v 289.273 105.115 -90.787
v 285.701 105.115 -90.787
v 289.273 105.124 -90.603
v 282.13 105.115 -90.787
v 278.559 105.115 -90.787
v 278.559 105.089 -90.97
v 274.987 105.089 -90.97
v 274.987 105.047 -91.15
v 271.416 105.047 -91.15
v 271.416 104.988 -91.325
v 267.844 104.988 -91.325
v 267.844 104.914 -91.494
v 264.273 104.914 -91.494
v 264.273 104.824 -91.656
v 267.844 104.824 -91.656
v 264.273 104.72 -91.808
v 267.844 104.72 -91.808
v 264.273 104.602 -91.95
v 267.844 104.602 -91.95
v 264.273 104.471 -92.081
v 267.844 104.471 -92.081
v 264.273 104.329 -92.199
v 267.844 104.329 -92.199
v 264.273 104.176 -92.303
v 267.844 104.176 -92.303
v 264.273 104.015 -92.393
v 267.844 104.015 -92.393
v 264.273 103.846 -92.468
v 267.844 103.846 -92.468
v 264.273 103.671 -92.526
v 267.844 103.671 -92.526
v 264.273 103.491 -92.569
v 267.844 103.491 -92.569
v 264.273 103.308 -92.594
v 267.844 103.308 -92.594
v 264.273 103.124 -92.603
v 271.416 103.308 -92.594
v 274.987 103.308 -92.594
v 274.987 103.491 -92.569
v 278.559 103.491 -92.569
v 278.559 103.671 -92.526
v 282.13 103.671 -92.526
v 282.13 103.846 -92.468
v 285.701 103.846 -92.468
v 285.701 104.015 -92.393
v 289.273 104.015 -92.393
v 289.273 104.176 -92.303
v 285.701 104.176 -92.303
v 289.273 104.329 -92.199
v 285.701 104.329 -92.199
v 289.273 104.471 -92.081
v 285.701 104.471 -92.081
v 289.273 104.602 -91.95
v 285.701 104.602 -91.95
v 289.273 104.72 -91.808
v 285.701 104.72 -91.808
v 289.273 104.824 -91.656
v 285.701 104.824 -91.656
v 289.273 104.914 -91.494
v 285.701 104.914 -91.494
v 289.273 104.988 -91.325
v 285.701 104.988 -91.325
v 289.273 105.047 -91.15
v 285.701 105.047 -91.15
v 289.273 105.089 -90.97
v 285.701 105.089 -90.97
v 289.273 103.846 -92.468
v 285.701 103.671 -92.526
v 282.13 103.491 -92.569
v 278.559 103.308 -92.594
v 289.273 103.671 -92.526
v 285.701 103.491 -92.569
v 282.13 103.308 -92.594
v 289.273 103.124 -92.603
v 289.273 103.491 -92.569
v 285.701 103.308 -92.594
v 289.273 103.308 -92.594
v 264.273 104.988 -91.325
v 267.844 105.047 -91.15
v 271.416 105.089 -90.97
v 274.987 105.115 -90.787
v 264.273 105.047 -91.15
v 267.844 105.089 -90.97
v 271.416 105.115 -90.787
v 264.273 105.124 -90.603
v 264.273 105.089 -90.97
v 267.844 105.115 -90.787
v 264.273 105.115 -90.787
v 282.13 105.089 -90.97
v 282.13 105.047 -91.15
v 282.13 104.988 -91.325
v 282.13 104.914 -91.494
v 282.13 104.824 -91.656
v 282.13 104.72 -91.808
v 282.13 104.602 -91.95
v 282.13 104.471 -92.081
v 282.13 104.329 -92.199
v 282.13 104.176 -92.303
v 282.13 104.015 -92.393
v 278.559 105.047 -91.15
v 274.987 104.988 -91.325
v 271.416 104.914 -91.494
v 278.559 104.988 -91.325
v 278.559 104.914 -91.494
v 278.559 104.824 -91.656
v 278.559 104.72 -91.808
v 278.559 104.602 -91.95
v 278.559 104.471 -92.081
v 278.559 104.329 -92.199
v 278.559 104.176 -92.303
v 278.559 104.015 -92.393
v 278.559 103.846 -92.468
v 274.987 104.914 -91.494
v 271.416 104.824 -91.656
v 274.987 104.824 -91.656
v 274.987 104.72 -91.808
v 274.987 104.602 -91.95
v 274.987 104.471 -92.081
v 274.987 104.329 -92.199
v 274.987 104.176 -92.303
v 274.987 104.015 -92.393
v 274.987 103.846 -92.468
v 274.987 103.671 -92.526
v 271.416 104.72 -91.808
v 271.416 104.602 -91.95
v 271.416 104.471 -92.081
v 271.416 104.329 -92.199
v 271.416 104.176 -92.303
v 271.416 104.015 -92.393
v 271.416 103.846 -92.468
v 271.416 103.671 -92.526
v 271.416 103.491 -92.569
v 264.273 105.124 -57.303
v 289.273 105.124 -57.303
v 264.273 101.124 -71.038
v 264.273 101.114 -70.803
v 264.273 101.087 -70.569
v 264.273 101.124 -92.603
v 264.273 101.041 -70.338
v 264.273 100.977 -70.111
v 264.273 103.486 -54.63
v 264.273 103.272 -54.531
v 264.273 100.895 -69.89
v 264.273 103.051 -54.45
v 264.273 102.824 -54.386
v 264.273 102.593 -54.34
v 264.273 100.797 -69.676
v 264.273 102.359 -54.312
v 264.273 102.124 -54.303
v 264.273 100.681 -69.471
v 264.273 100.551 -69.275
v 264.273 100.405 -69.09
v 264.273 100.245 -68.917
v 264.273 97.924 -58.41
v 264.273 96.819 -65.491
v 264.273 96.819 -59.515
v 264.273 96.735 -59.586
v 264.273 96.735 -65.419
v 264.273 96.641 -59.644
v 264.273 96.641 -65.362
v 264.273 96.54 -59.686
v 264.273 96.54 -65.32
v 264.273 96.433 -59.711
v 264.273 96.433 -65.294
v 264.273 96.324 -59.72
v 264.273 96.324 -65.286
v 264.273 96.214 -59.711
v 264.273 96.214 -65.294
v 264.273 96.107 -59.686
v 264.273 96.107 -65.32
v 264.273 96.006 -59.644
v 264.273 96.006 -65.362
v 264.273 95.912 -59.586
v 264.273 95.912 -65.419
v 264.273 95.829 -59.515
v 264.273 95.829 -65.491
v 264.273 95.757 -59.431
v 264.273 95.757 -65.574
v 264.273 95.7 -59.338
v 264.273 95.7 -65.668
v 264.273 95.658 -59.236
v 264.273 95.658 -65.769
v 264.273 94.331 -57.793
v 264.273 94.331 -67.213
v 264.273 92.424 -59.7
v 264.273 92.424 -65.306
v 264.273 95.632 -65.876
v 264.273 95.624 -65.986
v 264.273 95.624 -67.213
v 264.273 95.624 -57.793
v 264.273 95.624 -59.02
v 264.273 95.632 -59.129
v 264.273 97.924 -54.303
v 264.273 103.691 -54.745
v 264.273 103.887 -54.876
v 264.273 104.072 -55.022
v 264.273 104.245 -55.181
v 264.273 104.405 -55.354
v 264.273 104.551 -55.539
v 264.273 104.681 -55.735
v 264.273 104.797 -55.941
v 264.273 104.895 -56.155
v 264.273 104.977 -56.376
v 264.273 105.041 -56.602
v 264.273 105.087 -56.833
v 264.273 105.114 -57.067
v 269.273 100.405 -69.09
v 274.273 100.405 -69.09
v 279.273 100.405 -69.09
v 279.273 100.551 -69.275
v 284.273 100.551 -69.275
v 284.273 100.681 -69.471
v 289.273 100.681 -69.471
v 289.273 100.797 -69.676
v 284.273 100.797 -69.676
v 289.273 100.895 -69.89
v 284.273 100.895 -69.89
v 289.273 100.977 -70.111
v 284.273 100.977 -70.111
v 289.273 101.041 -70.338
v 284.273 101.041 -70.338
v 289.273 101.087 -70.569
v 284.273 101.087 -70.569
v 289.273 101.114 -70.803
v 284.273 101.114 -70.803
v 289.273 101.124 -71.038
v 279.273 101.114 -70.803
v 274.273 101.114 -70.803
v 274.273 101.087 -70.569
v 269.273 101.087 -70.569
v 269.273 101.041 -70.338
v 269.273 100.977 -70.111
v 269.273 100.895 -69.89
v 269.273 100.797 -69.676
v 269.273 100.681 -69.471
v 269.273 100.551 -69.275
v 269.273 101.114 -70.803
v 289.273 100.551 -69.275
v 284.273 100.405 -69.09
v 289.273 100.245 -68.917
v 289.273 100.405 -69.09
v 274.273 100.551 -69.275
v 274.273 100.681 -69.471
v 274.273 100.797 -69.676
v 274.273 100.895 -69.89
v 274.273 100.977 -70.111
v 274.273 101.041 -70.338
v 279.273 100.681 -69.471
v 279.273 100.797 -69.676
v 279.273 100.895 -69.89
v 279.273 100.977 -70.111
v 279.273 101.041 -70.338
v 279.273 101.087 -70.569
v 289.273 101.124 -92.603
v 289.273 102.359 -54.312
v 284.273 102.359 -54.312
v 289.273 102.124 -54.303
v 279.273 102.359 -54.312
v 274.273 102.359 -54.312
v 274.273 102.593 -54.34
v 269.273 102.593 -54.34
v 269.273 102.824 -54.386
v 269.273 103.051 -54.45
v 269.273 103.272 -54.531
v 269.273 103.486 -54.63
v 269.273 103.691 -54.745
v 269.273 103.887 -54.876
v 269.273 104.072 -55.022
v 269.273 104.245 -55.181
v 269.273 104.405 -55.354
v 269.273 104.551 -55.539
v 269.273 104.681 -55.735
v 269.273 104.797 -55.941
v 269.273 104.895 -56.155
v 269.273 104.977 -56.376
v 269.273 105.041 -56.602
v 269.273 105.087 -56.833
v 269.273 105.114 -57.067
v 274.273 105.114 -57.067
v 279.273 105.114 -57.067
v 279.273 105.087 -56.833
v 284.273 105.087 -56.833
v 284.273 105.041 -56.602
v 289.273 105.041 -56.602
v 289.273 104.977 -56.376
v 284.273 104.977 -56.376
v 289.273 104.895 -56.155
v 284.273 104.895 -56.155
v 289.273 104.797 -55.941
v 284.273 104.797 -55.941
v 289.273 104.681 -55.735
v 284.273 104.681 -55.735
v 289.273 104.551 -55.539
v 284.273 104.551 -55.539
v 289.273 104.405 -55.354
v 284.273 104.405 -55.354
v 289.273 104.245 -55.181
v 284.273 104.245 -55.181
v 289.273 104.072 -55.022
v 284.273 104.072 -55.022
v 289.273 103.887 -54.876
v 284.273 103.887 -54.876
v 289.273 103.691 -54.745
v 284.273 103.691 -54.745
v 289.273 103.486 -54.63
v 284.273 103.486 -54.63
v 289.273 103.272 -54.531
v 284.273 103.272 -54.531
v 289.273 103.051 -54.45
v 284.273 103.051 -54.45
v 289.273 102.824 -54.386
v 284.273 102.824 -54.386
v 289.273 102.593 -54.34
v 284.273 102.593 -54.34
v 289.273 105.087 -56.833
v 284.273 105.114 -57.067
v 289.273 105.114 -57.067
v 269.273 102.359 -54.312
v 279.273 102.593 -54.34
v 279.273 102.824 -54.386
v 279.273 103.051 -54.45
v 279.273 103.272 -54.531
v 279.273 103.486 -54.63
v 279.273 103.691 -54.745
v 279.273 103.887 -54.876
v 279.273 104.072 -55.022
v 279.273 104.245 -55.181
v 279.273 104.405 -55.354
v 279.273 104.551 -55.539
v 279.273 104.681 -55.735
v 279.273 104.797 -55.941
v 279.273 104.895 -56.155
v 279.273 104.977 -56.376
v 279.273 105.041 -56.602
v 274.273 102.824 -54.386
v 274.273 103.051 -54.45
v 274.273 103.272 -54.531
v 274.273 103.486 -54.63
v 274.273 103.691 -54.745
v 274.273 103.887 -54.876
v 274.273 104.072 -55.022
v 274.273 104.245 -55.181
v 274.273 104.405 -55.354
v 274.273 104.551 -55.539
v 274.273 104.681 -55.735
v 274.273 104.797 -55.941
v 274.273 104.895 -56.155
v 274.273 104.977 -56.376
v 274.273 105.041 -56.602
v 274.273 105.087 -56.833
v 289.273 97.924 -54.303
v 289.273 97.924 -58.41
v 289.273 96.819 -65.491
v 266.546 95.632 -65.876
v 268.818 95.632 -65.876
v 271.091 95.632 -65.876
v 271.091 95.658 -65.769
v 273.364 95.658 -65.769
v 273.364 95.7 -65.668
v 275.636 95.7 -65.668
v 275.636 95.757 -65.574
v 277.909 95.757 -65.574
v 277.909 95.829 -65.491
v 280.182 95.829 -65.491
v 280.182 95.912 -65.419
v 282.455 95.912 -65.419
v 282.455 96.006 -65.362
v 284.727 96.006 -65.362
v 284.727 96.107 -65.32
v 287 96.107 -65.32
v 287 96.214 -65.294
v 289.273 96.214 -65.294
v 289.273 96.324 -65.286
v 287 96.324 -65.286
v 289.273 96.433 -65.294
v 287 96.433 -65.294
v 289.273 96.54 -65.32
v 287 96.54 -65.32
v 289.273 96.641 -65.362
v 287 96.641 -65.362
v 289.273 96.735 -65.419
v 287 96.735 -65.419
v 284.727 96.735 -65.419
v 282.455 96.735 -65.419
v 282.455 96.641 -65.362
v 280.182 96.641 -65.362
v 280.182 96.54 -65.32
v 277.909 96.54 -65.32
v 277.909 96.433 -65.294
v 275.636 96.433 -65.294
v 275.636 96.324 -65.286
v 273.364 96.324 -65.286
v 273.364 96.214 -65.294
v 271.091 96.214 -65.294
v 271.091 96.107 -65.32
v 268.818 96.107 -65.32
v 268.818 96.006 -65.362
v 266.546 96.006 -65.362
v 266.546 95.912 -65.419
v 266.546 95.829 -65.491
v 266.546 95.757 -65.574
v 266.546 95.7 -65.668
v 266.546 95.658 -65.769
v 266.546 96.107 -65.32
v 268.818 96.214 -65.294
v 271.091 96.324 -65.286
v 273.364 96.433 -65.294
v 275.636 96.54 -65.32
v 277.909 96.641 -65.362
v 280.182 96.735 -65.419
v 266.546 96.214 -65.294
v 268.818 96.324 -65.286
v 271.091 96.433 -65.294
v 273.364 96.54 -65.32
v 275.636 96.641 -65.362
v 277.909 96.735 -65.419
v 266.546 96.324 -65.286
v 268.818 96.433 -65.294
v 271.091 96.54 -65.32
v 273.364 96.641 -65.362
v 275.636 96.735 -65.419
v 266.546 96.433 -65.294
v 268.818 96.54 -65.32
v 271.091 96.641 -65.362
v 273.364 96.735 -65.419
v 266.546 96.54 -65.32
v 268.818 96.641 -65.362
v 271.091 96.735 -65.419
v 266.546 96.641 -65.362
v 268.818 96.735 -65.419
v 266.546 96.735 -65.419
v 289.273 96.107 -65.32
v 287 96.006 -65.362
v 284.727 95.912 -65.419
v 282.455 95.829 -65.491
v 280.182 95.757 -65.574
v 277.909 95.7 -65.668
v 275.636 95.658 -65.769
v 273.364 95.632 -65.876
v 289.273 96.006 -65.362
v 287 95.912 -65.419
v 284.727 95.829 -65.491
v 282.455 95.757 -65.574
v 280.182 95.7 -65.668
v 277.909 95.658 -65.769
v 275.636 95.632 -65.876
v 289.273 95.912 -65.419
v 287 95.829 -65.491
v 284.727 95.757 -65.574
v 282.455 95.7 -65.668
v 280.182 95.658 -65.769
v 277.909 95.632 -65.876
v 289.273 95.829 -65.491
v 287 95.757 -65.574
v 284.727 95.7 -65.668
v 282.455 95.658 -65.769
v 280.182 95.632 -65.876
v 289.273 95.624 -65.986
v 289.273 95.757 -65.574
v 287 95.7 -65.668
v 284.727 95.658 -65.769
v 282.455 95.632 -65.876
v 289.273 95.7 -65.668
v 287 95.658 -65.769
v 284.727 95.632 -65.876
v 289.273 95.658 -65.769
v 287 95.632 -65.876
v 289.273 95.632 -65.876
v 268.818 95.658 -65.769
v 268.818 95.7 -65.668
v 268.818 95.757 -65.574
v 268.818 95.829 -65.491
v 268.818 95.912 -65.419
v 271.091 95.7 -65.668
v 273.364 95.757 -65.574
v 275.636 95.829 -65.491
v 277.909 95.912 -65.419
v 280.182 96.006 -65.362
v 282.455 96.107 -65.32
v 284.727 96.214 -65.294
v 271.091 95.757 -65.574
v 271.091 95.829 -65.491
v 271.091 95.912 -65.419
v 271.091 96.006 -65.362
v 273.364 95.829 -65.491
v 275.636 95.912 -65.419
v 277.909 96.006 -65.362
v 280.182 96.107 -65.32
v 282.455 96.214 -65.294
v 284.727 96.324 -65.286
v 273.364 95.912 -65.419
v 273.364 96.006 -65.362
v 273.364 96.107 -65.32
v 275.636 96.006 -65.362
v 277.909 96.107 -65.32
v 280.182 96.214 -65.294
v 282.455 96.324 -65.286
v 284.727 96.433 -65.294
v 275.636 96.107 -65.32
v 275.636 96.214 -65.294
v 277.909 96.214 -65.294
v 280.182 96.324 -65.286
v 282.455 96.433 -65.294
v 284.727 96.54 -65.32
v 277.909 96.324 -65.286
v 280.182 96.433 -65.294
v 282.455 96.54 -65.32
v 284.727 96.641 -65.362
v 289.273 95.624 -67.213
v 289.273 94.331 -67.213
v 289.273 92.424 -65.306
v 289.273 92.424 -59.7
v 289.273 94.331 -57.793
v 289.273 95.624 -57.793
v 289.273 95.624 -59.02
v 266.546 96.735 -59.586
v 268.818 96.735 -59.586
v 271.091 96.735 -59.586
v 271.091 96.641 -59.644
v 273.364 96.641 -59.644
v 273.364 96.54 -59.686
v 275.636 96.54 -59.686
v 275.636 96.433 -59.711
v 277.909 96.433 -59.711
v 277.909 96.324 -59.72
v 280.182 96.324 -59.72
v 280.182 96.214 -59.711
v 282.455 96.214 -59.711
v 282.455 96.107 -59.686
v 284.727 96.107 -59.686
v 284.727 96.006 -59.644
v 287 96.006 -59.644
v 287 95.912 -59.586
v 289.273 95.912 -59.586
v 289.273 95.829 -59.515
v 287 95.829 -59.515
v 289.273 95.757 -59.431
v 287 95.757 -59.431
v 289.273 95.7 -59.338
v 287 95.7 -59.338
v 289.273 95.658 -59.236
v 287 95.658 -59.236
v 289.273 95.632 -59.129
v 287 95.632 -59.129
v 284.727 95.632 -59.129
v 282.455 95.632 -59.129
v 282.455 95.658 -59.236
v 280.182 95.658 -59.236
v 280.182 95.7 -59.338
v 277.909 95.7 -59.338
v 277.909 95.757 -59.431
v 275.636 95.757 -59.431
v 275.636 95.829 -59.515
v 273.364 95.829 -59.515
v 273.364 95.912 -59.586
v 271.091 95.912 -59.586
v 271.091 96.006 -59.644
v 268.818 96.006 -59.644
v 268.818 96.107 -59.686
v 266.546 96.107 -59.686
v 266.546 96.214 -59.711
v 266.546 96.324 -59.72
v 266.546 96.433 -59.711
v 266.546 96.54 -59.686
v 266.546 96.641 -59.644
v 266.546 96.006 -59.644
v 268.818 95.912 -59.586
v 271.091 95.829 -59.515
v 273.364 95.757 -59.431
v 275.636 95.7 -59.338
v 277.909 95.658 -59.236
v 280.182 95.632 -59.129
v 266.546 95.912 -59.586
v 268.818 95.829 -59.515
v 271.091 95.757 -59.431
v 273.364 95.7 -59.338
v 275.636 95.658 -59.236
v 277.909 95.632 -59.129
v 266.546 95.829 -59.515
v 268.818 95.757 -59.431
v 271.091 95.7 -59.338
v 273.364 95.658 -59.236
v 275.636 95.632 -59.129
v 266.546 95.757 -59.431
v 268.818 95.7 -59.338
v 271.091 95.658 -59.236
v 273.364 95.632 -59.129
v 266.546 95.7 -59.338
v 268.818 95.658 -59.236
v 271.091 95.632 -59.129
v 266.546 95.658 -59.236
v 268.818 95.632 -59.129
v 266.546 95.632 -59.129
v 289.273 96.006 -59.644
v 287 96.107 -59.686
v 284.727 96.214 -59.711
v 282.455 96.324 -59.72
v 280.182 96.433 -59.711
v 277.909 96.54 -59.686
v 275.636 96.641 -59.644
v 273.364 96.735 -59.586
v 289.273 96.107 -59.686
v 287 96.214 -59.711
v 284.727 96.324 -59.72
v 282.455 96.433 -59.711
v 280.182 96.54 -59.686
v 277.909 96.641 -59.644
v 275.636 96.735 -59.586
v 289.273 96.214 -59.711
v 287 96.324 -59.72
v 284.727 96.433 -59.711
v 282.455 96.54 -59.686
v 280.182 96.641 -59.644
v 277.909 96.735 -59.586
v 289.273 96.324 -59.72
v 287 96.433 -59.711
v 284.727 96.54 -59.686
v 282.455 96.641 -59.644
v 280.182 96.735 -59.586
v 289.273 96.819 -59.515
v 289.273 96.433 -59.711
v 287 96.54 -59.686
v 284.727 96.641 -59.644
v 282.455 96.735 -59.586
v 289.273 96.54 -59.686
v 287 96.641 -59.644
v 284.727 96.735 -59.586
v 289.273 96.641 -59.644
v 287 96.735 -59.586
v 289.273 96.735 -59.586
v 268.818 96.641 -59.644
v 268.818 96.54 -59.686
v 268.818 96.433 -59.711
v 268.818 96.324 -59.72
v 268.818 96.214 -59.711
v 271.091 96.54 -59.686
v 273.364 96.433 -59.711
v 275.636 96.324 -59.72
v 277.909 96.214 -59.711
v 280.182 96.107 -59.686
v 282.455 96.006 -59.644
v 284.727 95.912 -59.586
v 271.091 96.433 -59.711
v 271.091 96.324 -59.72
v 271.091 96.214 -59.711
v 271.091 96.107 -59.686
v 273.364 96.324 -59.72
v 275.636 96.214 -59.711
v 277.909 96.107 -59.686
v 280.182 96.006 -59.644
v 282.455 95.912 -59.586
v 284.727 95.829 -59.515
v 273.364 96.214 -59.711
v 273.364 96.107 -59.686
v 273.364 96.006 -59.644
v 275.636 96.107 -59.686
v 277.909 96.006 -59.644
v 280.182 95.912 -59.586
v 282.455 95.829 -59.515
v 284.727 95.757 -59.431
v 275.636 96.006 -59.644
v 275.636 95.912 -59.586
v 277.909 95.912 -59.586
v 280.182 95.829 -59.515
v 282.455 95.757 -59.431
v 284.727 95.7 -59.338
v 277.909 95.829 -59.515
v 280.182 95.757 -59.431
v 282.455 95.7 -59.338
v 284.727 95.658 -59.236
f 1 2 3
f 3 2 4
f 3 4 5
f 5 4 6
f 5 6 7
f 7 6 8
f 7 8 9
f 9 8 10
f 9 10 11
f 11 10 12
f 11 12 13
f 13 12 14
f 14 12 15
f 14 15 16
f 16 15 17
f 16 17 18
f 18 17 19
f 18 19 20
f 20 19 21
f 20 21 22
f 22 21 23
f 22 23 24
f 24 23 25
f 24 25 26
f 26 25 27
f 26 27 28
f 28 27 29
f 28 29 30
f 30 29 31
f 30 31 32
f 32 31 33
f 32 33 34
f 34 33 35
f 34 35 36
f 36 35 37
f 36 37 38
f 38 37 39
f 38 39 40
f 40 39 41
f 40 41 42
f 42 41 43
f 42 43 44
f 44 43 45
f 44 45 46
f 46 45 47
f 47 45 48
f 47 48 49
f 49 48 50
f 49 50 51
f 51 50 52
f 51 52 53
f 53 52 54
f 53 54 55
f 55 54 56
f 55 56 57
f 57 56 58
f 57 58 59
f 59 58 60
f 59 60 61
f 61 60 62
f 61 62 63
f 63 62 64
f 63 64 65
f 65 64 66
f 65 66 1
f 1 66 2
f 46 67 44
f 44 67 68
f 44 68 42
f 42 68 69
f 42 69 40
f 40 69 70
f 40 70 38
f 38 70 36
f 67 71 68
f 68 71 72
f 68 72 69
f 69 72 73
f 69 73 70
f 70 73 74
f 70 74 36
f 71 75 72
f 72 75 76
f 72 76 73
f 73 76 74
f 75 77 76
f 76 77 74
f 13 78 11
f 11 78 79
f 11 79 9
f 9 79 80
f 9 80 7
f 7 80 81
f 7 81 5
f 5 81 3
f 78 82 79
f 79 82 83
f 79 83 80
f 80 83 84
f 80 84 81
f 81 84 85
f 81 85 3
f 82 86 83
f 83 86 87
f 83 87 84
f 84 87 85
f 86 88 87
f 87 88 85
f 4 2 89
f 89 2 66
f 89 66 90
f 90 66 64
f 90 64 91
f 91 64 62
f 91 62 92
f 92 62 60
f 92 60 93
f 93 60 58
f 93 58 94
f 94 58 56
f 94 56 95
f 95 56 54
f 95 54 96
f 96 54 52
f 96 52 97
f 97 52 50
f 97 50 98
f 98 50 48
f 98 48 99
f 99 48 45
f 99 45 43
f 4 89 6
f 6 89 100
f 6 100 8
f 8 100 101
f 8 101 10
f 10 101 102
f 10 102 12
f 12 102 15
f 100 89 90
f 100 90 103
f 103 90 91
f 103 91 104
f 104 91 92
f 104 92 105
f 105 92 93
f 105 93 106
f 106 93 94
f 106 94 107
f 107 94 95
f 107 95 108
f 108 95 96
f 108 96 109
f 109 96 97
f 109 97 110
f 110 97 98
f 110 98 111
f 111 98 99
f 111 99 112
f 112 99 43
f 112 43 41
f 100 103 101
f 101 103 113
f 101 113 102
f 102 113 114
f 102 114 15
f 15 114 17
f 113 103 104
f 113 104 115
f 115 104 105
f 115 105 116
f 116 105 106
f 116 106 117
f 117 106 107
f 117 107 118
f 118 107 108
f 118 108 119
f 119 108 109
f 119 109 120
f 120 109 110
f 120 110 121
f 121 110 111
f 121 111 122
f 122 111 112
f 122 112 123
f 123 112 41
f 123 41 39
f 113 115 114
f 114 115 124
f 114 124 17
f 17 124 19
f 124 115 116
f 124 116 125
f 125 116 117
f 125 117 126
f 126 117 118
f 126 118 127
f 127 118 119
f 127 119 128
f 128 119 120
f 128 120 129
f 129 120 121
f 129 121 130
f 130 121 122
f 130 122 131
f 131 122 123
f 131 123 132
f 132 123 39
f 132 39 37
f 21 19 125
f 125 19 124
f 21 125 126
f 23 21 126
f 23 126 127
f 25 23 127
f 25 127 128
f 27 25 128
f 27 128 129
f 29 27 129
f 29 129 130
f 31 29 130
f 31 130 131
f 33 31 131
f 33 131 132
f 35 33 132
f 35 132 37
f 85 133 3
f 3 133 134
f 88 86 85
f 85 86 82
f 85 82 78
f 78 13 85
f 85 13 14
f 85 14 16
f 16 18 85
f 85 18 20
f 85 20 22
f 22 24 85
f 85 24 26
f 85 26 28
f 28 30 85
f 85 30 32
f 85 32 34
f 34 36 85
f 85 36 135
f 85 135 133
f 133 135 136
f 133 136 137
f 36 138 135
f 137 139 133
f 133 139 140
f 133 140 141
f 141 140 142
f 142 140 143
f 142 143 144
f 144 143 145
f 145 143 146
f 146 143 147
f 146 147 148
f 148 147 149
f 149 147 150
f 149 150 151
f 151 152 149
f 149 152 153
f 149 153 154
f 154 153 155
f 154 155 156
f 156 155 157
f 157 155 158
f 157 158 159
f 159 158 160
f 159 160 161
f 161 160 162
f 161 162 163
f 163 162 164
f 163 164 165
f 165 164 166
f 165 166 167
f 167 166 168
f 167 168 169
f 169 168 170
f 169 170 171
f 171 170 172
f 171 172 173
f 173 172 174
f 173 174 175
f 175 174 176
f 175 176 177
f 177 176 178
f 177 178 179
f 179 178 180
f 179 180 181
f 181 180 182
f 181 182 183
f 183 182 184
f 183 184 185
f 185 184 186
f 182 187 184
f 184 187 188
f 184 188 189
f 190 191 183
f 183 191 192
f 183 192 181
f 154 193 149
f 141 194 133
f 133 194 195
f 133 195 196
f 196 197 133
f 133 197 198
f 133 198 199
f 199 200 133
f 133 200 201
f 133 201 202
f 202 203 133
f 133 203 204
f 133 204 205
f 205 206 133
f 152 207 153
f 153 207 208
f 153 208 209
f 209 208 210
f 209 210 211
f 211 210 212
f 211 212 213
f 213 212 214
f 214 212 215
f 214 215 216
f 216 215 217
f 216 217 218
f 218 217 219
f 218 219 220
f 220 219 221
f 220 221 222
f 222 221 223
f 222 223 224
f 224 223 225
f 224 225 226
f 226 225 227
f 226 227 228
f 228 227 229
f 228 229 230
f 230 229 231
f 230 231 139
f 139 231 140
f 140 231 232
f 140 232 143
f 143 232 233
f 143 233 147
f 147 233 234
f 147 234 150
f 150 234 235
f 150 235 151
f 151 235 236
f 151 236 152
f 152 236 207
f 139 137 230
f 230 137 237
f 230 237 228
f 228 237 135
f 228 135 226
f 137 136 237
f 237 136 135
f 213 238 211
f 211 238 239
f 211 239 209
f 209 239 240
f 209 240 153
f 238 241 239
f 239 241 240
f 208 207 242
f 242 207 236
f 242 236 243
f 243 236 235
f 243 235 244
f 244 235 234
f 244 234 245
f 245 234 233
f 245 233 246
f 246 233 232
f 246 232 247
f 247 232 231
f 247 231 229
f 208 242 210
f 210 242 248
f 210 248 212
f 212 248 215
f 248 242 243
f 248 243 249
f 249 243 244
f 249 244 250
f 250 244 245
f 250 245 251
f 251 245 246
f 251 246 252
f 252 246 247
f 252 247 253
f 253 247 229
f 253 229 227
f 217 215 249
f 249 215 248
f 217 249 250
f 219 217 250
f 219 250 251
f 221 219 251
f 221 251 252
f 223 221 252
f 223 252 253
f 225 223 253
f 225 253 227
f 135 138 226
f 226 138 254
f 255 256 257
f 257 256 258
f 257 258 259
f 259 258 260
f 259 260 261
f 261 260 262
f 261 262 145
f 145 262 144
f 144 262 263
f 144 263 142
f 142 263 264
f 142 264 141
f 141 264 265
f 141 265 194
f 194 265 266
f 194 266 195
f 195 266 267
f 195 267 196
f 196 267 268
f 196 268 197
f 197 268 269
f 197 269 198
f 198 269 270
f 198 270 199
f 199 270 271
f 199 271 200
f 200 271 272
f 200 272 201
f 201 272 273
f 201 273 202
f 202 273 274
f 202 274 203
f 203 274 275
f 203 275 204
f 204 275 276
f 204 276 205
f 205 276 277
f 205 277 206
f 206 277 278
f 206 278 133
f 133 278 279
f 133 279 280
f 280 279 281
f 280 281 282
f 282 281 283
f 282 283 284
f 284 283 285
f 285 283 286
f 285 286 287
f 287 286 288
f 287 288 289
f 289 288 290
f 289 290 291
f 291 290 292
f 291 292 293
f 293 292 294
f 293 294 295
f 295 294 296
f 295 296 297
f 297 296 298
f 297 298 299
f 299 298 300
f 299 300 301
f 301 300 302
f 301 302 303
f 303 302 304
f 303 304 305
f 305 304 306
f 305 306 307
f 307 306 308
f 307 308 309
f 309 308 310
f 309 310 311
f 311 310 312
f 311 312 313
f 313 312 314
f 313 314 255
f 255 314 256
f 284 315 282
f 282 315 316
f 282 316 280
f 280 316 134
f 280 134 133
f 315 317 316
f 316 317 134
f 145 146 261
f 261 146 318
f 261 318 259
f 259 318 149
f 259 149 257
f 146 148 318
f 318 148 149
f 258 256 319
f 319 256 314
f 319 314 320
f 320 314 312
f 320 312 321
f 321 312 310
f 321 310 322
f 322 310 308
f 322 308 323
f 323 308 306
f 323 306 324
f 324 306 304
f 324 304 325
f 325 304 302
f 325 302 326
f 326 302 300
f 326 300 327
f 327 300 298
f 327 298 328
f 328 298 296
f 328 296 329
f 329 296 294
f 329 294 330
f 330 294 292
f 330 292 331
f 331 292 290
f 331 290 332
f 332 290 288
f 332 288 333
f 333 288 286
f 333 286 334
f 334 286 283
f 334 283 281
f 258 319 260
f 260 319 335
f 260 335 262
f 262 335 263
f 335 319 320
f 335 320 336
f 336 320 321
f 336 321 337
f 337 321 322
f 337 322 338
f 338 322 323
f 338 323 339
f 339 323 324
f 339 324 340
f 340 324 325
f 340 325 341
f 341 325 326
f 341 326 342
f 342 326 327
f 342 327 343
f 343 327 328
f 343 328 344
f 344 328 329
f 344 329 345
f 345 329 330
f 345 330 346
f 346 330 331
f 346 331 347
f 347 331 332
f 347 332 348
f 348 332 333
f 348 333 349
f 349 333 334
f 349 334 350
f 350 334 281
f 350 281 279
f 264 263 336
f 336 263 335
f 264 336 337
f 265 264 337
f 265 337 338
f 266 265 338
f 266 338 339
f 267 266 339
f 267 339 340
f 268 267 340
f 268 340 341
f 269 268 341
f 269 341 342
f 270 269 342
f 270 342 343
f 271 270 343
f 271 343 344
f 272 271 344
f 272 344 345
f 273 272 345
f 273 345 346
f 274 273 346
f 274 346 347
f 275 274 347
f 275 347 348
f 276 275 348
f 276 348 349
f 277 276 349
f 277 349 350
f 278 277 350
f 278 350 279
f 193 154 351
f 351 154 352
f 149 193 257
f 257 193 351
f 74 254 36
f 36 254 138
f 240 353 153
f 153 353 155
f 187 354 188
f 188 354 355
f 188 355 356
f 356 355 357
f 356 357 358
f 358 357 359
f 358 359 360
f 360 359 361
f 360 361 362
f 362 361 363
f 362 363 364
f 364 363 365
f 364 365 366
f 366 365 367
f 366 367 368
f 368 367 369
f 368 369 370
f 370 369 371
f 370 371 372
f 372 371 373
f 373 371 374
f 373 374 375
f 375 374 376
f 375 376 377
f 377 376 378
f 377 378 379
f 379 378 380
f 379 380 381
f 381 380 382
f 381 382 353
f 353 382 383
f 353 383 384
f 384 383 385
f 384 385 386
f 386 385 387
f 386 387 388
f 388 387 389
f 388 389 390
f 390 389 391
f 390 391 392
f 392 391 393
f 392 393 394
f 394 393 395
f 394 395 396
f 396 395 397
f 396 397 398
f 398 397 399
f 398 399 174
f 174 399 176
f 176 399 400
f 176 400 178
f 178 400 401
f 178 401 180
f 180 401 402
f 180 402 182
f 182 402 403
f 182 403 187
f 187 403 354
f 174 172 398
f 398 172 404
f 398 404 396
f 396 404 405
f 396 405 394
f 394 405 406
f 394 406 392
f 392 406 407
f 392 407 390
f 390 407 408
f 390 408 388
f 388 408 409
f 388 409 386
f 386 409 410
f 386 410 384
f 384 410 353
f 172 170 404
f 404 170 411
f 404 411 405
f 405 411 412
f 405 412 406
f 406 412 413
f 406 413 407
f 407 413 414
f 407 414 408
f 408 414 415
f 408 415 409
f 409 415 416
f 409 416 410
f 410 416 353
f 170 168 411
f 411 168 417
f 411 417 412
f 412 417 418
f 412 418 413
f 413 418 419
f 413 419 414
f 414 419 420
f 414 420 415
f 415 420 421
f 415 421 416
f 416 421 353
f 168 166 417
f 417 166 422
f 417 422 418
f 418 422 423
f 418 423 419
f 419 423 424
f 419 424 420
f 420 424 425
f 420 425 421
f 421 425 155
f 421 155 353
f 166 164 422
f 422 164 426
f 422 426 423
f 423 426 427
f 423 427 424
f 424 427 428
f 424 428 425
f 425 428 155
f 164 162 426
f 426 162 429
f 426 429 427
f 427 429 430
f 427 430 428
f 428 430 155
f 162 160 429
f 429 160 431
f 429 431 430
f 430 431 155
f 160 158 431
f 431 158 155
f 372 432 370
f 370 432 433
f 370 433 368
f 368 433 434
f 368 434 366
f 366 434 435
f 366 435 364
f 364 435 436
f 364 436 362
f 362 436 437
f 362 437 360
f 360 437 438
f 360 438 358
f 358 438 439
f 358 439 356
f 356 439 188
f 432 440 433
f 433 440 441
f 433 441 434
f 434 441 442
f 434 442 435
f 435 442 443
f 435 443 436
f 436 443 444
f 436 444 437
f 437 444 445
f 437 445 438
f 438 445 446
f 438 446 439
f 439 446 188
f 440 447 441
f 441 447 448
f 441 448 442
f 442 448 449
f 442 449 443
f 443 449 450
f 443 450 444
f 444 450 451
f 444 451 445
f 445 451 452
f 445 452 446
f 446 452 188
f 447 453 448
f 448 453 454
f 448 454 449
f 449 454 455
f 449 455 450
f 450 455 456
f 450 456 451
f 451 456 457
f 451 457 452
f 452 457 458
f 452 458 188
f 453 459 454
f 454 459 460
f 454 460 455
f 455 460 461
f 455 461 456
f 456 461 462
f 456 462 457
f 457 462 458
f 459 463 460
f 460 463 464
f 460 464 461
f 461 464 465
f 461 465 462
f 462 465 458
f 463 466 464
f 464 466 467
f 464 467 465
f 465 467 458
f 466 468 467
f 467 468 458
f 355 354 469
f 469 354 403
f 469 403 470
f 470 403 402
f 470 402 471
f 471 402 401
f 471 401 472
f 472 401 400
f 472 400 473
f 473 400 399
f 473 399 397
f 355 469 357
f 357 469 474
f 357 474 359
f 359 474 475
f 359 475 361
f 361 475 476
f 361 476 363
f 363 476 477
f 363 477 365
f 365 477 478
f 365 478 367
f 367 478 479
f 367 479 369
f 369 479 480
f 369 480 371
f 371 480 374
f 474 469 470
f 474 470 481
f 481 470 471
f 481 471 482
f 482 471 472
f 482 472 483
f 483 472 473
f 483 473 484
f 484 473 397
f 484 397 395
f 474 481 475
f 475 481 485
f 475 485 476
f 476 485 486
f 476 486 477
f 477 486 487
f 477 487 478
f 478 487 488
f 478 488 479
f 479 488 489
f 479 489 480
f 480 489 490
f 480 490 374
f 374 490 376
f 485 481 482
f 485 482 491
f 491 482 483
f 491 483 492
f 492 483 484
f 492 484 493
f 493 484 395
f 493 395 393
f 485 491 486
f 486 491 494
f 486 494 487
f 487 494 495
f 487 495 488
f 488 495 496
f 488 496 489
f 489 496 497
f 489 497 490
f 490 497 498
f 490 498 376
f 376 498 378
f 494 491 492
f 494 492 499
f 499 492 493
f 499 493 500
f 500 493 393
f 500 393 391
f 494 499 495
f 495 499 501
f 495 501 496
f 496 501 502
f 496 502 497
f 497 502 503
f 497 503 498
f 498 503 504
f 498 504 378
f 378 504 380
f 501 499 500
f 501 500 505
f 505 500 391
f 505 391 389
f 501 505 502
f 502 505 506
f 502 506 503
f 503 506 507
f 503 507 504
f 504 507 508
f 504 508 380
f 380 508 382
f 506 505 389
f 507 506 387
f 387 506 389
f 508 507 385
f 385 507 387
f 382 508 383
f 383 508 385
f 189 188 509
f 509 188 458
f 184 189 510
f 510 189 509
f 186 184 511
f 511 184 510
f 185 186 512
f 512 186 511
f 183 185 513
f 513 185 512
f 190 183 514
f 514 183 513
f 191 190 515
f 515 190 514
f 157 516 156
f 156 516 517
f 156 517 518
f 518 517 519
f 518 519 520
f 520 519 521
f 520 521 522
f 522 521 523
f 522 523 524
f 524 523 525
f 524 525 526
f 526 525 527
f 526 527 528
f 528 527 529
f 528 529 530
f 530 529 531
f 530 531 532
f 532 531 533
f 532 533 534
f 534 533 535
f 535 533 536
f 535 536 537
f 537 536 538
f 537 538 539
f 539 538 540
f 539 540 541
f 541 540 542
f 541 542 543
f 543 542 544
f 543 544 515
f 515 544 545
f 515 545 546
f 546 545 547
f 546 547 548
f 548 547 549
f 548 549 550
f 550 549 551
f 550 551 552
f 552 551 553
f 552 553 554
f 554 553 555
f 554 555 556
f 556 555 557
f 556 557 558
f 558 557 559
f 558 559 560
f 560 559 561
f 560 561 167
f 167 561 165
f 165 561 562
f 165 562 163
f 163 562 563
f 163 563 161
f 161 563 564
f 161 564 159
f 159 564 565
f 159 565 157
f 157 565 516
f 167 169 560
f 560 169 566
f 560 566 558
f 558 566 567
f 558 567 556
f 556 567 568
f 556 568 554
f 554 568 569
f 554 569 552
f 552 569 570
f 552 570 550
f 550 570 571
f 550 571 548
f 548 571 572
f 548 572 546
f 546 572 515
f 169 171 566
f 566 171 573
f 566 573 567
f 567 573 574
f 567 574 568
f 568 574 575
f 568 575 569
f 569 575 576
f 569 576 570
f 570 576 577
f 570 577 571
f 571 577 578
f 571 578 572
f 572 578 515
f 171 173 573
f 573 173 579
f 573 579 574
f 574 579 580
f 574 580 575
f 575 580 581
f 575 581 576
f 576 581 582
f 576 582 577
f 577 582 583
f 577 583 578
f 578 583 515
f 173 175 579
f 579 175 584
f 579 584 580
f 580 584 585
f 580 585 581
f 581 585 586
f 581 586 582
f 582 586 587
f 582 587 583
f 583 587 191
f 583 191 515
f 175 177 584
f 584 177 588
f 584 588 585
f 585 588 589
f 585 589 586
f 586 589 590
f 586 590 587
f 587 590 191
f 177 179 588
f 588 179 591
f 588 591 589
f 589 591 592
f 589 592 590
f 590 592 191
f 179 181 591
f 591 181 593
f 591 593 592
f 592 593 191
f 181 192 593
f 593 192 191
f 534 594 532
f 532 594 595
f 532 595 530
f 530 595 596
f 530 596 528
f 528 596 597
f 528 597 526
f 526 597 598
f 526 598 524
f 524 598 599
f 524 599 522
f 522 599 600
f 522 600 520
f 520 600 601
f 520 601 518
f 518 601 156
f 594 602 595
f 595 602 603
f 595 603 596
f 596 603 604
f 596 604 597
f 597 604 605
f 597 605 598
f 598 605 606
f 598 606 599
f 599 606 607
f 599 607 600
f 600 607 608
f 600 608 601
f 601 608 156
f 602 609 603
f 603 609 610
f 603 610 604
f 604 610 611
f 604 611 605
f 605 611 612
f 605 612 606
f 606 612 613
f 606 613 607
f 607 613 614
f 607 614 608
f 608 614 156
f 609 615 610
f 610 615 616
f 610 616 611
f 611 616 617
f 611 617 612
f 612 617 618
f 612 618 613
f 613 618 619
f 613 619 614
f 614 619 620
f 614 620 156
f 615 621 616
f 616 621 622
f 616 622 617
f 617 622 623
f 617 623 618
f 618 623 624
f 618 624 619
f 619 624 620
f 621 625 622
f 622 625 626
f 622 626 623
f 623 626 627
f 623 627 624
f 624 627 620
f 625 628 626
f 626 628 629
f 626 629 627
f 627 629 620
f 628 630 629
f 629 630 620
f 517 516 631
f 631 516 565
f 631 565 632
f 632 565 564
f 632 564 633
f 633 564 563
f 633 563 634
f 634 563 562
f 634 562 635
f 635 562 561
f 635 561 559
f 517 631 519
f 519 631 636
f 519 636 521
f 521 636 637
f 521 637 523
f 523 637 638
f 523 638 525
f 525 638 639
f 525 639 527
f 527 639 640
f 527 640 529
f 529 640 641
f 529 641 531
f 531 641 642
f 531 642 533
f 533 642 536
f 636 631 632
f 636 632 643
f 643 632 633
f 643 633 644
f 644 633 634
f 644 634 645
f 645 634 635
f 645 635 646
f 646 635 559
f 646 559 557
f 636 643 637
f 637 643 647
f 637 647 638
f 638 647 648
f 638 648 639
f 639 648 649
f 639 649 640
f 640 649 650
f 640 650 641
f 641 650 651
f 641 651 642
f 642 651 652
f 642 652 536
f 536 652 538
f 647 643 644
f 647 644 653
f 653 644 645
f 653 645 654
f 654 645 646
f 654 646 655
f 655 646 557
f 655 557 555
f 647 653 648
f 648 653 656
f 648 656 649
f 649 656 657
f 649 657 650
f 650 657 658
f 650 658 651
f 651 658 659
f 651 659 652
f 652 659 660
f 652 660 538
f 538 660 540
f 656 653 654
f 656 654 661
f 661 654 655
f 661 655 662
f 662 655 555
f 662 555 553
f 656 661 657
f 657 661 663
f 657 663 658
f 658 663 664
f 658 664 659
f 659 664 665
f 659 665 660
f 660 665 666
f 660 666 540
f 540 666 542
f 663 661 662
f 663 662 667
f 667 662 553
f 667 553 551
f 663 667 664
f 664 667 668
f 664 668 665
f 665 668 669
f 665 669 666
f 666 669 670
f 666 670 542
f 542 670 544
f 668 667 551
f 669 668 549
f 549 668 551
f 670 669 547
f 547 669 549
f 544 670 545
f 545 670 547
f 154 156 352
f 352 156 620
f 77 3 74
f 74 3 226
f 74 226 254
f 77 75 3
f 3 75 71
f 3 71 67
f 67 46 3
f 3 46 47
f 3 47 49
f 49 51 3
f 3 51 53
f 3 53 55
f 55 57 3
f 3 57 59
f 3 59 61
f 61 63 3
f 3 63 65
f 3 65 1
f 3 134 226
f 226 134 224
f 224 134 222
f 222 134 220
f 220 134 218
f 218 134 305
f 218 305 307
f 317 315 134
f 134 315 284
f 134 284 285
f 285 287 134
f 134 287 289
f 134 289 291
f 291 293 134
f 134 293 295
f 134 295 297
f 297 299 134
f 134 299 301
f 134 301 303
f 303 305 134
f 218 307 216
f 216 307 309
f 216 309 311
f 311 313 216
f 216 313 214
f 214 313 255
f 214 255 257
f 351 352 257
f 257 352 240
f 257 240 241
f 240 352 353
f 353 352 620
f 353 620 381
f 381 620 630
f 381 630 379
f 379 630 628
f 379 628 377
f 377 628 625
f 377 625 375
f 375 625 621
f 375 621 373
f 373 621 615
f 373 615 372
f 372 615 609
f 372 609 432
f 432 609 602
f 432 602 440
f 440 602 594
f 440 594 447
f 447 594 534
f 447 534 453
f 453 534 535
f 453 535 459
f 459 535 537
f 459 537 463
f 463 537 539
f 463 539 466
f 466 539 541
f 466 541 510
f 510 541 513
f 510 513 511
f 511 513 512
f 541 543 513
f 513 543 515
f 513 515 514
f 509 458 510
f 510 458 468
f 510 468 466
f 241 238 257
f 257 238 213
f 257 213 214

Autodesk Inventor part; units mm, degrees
ref_plane "YZ Plane" through (0, 0, 0) normal (1, 0, 0) x (0, 1, 0)
ref_plane "XZ Plane" through (0, 0, 0) normal (0, 1, 0) x (-1, 0, 0)
ref_plane "Work Plane3" through (264.2728, 97.9235, -72.5028) normal (1, 0, 0) x (0, 1, 0)
sketch "Sketch1" plane through (264.2728, 97.9235, -72.5028) normal (1, 0, 0) x (0, 1, 0)
  line L0 (-1.8, 13.4828) -> (-1.8, 15.2101) projected
  line L1 (-1.8, 15.2101) -> (-3.8, 15.2101) projected
  line L2 (-3.8, 15.2101) -> (-6, 13.0101) projected
  line L3 (-6, 13.0101) -> (-6, 10.5) projected
  line L4 (-6, 9.5) -> (-6, 6.9899) projected
  line L5 (-6, 6.9899) -> (-3.8, 4.7899) projected
  line L6 (-3.8, 4.7899) -> (-1.8, 4.7899) projected
  line L7 (-1.8, 4.7899) -> (-1.8, 6.5172) projected
  line L8 (-6, 9.5) -> (-6, 10.5)
  line L9 (-0.0586, 14.7414) -> (-1.4586, 13.3414) projected
  arc A0 (-1.8, 13.4828) -> (-1.4586, 13.3414) centre (-1.6, 13.4828) ccw projected
  arc A1 (-1.4586, 6.6586) -> (-1.8, 6.5172) centre (-1.6, 6.5172) ccw projected
  line L10 (-1.4586, 6.6586) -> (-0.0586, 5.2586) projected
  line L11 (3.2, 2.7071) -> (-1.105, 7.0121)
  arc A2 (-1.105, 7.0121) -> (-2.3, 6.5172) centre (-1.6, 6.5172) ccw
  line L12 (-2.3, 6.5172) -> (-2.3, 5.2899)
  line L13 (-2.3, 5.2899) -> (-3.5929, 5.2899)
  line L14 (-3.5929, 5.2899) -> (-5.5, 7.1971)
  line L15 (-5.5, 7.1971) -> (-5.5, 9.5)
  line L16 (-5.5, 9.5) -> (-5.5, 10.5)
  line L17 (-5.5, 10.5) -> (-5.5, 12.8029)
  line L18 (-5.5, 12.8029) -> (-3.5929, 14.7101)
  line L19 (-3.5929, 14.7101) -> (-2.3, 14.7101)
  line L20 (-2.3, 14.7101) -> (-2.3, 13.4828)
  arc A3 (-2.3, 13.4828) -> (-1.105, 12.9879) centre (-1.6, 13.4828) ccw
  arc A4 (-0.2, 0) -> (0, 0.2) centre (-0.2, 0.2) ccw projected
  line L21 (0, 0.2) -> (0, 5.1172) projected
  arc A5 (0, 5.1172) -> (-0.0586, 5.2586) centre (-0.2, 5.1172) ccw projected
  line L22 (-1.4586, 6.6586) -> (-0.0586, 5.2586) projected
  arc A6 (-1.4586, 6.6586) -> (-1.8, 6.5172) centre (-1.6, 6.5172) ccw projected
  line L23 (-1.8, 4.7899) -> (-1.8, 6.5172) projected
  line L24 (-3.8, 4.7899) -> (-1.8, 4.7899) projected
  line L25 (-6, 6.9899) -> (-3.8, 4.7899) projected
  line L26 (-6, 9.5) -> (-6, 6.9899) projected
  line L27 (-6.5, 10) -> (-6, 9.5) projected
  line L28 (-6, 10.5) -> (-6.5, 10) projected
  line L29 (-6, 13.0101) -> (-6, 10.5) projected
  line L30 (-3.8, 15.2101) -> (-6, 13.0101) projected
  line L31 (-1.8, 15.2101) -> (-3.8, 15.2101) projected
  line L32 (-1.8, 13.4828) -> (-1.8, 15.2101) projected
  arc A7 (-1.8, 13.4828) -> (-1.4586, 13.3414) centre (-1.6, 13.4828) ccw projected
  line L33 (-0.0586, 14.7414) -> (-1.4586, 13.3414) projected
  arc A8 (-0.0586, 14.7414) -> (0, 14.8828) centre (-0.2, 14.8828) ccw projected
  line L34 (0, 14.8828) -> (0, 19.8) projected
  arc A9 (0, 19.8) -> (-0.2, 20) centre (-0.2, 19.8) ccw projected
  line L35 (-0.2, 20) -> (-5.1172, 20) projected
  arc A10 (-5.1172, 20) -> (-5.2586, 19.9414) centre (-5.1172, 19.8) ccw projected
  line L36 (-6.6586, 18.5414) -> (-5.2586, 19.9414) projected
  arc A11 (-6.6586, 18.5414) -> (-6.5172, 18.2) centre (-6.5172, 18.4) ccw projected
  line L37 (-4.7899, 18.2) -> (-6.5172, 18.2) projected
  line L38 (-4.7899, 16.2) -> (-4.7899, 18.2) projected
  line L39 (-6.9899, 14) -> (-4.7899, 16.2) projected
  line L40 (-9.5, 14) -> (-6.9899, 14) projected
  line L41 (-10, 13.5) -> (-9.5, 14) projected
  line L42 (-10.5, 14) -> (-10, 13.5) projected
  line L43 (-13.0101, 14) -> (-10.5, 14) projected
  line L44 (-15.2101, 16.2) -> (-13.0101, 14) projected
  line L45 (-15.2101, 18.2) -> (-15.2101, 16.2) projected
  line L46 (-13.4828, 18.2) -> (-15.2101, 18.2) projected
  arc A12 (-13.4828, 18.2) -> (-13.3414, 18.5414) centre (-13.4828, 18.4) ccw projected
  line L47 (-14.7414, 19.9414) -> (-13.3414, 18.5414) projected
  arc A13 (-14.7414, 19.9414) -> (-14.8828, 20) centre (-14.8828, 19.8) ccw projected
  line L48 (-14.8828, 20) -> (-19.8, 20) projected
  arc A14 (-19.8, 20) -> (-20, 19.8) centre (-19.8, 19.8) ccw projected
  line L49 (-20, 14.8828) -> (-20, 19.8) projected
  arc A15 (-20, 14.8828) -> (-19.9414, 14.7414) centre (-19.8, 14.8828) ccw projected
  line L50 (-18.5414, 13.3414) -> (-19.9414, 14.7414) projected
  arc A16 (-18.5414, 13.3414) -> (-18.2, 13.4828) centre (-18.4, 13.4828) ccw projected
  line L51 (-18.2, 15.2101) -> (-18.2, 13.4828) projected
  line L52 (-16.2, 15.2101) -> (-18.2, 15.2101) projected
  line L53 (-14, 13.0101) -> (-16.2, 15.2101) projected
  line L54 (-14, 10.5) -> (-14, 13.0101) projected
  line L55 (-13.5, 10) -> (-14, 10.5) projected
  line L56 (-14, 9.5) -> (-13.5, 10) projected
  line L57 (-14, 6.9899) -> (-14, 9.5) projected
  line L58 (-16.2, 4.7899) -> (-14, 6.9899) projected
  line L59 (-18.2, 4.7899) -> (-16.2, 4.7899) projected
  line L60 (-18.2, 6.5172) -> (-18.2, 4.7899) projected
  arc A17 (-18.2, 6.5172) -> (-18.5414, 6.6586) centre (-18.4, 6.5172) ccw projected
  line L61 (-19.9414, 5.2586) -> (-18.5414, 6.6586) projected
  arc A18 (-19.9414, 5.2586) -> (-20, 5.1172) centre (-19.8, 5.1172) ccw projected
  line L62 (-20, 0.2) -> (-20, 5.1172) projected
  arc A19 (-20, 0.2) -> (-19.8, 0) centre (-19.8, 0.2) ccw projected
  line L63 (-14.8828, 0) -> (-19.8, 0) projected
  arc A20 (-14.8828, 0) -> (-14.7414, 0.0586) centre (-14.8828, 0.2) ccw projected
  line L64 (-13.3414, 1.4586) -> (-14.7414, 0.0586) projected
  arc A21 (-13.3414, 1.4586) -> (-13.4828, 1.8) centre (-13.4828, 1.6) ccw projected
  line L65 (-15.2101, 1.8) -> (-13.4828, 1.8) projected
  line L66 (-15.2101, 3.8) -> (-15.2101, 1.8) projected
  line L67 (-13.0101, 6) -> (-15.2101, 3.8) projected
  line L68 (-10.5, 6) -> (-13.0101, 6) projected
  line L69 (-10, 6.5) -> (-10.5, 6) projected
  line L70 (-9.5, 6) -> (-10, 6.5) projected
  line L71 (-6.9899, 6) -> (-9.5, 6) projected
  line L72 (-4.7899, 3.8) -> (-6.9899, 6) projected
  line L73 (-4.7899, 1.8) -> (-4.7899, 3.8) projected
  line L74 (-6.5172, 1.8) -> (-4.7899, 1.8) projected
  arc A22 (-6.5172, 1.8) -> (-6.6586, 1.4586) centre (-6.5172, 1.6) ccw projected
  line L75 (-5.2586, 0.0586) -> (-6.6586, 1.4586) projected
  arc A23 (-5.2586, 0.0586) -> (-5.1172, 0) centre (-5.1172, 0.2) ccw projected
  line L76 (-0.2, 0) -> (-5.1172, 0) projected
  circle A24 centre (-10, 10) radius 2 projected
  line L77 (0, 5.9071) -> (0, 5.1172)
  line L78 (0.0036, 6) -> (0.0036, 5.9036)
  line L79 (3.2, 2.7071) -> (3.2, -20.1)
  line L80 (0.0036, -20.1) -> (0, -20.1)
  line L81 (0, 1.6971) -> (0, 1.8)
  line L82 (3.2, -20.1) -> (7.2, -20.1)
  line L83 (7.2, -20.1) -> (7.2, 4.9)
  line L84 (7.2, 4.9) -> (7.2, 15.9769)
  line L85 (0, 18.2) -> (7.2, 18.2)
  line L86 (7.2, 18.2) -> (7.2, 15.9769)
  line L87 (0, 18.2) -> (0.0036, 18.1982)
  line L88 (0, 14.8828) -> (0, 14.0929)
  line L89 (0, 14.0929) -> (-1.105, 12.9879)
  dimension "d0" = 0.5
  dimension "d10" = 4
  dimension "d11" = 3.2
extrude "Extrusion1" add sketch "Sketch1" along normal blind 25 contours L34 L85 L86 L84 L83 L82 L79 L11 A2 L12 L13 L14 L15 L16 L17 L18 L19 L20 A3 L89 L88
fillet "Fillet1" radius 3 2 edges at (276.7728, 105.1235, -54.3028) (276.7728, 101.1235, -69.7956)
fillet "Fillet2" radius 2 1 edges at (276.7728, 105.1235, -92.6028)
properties part number "LED Holder"
